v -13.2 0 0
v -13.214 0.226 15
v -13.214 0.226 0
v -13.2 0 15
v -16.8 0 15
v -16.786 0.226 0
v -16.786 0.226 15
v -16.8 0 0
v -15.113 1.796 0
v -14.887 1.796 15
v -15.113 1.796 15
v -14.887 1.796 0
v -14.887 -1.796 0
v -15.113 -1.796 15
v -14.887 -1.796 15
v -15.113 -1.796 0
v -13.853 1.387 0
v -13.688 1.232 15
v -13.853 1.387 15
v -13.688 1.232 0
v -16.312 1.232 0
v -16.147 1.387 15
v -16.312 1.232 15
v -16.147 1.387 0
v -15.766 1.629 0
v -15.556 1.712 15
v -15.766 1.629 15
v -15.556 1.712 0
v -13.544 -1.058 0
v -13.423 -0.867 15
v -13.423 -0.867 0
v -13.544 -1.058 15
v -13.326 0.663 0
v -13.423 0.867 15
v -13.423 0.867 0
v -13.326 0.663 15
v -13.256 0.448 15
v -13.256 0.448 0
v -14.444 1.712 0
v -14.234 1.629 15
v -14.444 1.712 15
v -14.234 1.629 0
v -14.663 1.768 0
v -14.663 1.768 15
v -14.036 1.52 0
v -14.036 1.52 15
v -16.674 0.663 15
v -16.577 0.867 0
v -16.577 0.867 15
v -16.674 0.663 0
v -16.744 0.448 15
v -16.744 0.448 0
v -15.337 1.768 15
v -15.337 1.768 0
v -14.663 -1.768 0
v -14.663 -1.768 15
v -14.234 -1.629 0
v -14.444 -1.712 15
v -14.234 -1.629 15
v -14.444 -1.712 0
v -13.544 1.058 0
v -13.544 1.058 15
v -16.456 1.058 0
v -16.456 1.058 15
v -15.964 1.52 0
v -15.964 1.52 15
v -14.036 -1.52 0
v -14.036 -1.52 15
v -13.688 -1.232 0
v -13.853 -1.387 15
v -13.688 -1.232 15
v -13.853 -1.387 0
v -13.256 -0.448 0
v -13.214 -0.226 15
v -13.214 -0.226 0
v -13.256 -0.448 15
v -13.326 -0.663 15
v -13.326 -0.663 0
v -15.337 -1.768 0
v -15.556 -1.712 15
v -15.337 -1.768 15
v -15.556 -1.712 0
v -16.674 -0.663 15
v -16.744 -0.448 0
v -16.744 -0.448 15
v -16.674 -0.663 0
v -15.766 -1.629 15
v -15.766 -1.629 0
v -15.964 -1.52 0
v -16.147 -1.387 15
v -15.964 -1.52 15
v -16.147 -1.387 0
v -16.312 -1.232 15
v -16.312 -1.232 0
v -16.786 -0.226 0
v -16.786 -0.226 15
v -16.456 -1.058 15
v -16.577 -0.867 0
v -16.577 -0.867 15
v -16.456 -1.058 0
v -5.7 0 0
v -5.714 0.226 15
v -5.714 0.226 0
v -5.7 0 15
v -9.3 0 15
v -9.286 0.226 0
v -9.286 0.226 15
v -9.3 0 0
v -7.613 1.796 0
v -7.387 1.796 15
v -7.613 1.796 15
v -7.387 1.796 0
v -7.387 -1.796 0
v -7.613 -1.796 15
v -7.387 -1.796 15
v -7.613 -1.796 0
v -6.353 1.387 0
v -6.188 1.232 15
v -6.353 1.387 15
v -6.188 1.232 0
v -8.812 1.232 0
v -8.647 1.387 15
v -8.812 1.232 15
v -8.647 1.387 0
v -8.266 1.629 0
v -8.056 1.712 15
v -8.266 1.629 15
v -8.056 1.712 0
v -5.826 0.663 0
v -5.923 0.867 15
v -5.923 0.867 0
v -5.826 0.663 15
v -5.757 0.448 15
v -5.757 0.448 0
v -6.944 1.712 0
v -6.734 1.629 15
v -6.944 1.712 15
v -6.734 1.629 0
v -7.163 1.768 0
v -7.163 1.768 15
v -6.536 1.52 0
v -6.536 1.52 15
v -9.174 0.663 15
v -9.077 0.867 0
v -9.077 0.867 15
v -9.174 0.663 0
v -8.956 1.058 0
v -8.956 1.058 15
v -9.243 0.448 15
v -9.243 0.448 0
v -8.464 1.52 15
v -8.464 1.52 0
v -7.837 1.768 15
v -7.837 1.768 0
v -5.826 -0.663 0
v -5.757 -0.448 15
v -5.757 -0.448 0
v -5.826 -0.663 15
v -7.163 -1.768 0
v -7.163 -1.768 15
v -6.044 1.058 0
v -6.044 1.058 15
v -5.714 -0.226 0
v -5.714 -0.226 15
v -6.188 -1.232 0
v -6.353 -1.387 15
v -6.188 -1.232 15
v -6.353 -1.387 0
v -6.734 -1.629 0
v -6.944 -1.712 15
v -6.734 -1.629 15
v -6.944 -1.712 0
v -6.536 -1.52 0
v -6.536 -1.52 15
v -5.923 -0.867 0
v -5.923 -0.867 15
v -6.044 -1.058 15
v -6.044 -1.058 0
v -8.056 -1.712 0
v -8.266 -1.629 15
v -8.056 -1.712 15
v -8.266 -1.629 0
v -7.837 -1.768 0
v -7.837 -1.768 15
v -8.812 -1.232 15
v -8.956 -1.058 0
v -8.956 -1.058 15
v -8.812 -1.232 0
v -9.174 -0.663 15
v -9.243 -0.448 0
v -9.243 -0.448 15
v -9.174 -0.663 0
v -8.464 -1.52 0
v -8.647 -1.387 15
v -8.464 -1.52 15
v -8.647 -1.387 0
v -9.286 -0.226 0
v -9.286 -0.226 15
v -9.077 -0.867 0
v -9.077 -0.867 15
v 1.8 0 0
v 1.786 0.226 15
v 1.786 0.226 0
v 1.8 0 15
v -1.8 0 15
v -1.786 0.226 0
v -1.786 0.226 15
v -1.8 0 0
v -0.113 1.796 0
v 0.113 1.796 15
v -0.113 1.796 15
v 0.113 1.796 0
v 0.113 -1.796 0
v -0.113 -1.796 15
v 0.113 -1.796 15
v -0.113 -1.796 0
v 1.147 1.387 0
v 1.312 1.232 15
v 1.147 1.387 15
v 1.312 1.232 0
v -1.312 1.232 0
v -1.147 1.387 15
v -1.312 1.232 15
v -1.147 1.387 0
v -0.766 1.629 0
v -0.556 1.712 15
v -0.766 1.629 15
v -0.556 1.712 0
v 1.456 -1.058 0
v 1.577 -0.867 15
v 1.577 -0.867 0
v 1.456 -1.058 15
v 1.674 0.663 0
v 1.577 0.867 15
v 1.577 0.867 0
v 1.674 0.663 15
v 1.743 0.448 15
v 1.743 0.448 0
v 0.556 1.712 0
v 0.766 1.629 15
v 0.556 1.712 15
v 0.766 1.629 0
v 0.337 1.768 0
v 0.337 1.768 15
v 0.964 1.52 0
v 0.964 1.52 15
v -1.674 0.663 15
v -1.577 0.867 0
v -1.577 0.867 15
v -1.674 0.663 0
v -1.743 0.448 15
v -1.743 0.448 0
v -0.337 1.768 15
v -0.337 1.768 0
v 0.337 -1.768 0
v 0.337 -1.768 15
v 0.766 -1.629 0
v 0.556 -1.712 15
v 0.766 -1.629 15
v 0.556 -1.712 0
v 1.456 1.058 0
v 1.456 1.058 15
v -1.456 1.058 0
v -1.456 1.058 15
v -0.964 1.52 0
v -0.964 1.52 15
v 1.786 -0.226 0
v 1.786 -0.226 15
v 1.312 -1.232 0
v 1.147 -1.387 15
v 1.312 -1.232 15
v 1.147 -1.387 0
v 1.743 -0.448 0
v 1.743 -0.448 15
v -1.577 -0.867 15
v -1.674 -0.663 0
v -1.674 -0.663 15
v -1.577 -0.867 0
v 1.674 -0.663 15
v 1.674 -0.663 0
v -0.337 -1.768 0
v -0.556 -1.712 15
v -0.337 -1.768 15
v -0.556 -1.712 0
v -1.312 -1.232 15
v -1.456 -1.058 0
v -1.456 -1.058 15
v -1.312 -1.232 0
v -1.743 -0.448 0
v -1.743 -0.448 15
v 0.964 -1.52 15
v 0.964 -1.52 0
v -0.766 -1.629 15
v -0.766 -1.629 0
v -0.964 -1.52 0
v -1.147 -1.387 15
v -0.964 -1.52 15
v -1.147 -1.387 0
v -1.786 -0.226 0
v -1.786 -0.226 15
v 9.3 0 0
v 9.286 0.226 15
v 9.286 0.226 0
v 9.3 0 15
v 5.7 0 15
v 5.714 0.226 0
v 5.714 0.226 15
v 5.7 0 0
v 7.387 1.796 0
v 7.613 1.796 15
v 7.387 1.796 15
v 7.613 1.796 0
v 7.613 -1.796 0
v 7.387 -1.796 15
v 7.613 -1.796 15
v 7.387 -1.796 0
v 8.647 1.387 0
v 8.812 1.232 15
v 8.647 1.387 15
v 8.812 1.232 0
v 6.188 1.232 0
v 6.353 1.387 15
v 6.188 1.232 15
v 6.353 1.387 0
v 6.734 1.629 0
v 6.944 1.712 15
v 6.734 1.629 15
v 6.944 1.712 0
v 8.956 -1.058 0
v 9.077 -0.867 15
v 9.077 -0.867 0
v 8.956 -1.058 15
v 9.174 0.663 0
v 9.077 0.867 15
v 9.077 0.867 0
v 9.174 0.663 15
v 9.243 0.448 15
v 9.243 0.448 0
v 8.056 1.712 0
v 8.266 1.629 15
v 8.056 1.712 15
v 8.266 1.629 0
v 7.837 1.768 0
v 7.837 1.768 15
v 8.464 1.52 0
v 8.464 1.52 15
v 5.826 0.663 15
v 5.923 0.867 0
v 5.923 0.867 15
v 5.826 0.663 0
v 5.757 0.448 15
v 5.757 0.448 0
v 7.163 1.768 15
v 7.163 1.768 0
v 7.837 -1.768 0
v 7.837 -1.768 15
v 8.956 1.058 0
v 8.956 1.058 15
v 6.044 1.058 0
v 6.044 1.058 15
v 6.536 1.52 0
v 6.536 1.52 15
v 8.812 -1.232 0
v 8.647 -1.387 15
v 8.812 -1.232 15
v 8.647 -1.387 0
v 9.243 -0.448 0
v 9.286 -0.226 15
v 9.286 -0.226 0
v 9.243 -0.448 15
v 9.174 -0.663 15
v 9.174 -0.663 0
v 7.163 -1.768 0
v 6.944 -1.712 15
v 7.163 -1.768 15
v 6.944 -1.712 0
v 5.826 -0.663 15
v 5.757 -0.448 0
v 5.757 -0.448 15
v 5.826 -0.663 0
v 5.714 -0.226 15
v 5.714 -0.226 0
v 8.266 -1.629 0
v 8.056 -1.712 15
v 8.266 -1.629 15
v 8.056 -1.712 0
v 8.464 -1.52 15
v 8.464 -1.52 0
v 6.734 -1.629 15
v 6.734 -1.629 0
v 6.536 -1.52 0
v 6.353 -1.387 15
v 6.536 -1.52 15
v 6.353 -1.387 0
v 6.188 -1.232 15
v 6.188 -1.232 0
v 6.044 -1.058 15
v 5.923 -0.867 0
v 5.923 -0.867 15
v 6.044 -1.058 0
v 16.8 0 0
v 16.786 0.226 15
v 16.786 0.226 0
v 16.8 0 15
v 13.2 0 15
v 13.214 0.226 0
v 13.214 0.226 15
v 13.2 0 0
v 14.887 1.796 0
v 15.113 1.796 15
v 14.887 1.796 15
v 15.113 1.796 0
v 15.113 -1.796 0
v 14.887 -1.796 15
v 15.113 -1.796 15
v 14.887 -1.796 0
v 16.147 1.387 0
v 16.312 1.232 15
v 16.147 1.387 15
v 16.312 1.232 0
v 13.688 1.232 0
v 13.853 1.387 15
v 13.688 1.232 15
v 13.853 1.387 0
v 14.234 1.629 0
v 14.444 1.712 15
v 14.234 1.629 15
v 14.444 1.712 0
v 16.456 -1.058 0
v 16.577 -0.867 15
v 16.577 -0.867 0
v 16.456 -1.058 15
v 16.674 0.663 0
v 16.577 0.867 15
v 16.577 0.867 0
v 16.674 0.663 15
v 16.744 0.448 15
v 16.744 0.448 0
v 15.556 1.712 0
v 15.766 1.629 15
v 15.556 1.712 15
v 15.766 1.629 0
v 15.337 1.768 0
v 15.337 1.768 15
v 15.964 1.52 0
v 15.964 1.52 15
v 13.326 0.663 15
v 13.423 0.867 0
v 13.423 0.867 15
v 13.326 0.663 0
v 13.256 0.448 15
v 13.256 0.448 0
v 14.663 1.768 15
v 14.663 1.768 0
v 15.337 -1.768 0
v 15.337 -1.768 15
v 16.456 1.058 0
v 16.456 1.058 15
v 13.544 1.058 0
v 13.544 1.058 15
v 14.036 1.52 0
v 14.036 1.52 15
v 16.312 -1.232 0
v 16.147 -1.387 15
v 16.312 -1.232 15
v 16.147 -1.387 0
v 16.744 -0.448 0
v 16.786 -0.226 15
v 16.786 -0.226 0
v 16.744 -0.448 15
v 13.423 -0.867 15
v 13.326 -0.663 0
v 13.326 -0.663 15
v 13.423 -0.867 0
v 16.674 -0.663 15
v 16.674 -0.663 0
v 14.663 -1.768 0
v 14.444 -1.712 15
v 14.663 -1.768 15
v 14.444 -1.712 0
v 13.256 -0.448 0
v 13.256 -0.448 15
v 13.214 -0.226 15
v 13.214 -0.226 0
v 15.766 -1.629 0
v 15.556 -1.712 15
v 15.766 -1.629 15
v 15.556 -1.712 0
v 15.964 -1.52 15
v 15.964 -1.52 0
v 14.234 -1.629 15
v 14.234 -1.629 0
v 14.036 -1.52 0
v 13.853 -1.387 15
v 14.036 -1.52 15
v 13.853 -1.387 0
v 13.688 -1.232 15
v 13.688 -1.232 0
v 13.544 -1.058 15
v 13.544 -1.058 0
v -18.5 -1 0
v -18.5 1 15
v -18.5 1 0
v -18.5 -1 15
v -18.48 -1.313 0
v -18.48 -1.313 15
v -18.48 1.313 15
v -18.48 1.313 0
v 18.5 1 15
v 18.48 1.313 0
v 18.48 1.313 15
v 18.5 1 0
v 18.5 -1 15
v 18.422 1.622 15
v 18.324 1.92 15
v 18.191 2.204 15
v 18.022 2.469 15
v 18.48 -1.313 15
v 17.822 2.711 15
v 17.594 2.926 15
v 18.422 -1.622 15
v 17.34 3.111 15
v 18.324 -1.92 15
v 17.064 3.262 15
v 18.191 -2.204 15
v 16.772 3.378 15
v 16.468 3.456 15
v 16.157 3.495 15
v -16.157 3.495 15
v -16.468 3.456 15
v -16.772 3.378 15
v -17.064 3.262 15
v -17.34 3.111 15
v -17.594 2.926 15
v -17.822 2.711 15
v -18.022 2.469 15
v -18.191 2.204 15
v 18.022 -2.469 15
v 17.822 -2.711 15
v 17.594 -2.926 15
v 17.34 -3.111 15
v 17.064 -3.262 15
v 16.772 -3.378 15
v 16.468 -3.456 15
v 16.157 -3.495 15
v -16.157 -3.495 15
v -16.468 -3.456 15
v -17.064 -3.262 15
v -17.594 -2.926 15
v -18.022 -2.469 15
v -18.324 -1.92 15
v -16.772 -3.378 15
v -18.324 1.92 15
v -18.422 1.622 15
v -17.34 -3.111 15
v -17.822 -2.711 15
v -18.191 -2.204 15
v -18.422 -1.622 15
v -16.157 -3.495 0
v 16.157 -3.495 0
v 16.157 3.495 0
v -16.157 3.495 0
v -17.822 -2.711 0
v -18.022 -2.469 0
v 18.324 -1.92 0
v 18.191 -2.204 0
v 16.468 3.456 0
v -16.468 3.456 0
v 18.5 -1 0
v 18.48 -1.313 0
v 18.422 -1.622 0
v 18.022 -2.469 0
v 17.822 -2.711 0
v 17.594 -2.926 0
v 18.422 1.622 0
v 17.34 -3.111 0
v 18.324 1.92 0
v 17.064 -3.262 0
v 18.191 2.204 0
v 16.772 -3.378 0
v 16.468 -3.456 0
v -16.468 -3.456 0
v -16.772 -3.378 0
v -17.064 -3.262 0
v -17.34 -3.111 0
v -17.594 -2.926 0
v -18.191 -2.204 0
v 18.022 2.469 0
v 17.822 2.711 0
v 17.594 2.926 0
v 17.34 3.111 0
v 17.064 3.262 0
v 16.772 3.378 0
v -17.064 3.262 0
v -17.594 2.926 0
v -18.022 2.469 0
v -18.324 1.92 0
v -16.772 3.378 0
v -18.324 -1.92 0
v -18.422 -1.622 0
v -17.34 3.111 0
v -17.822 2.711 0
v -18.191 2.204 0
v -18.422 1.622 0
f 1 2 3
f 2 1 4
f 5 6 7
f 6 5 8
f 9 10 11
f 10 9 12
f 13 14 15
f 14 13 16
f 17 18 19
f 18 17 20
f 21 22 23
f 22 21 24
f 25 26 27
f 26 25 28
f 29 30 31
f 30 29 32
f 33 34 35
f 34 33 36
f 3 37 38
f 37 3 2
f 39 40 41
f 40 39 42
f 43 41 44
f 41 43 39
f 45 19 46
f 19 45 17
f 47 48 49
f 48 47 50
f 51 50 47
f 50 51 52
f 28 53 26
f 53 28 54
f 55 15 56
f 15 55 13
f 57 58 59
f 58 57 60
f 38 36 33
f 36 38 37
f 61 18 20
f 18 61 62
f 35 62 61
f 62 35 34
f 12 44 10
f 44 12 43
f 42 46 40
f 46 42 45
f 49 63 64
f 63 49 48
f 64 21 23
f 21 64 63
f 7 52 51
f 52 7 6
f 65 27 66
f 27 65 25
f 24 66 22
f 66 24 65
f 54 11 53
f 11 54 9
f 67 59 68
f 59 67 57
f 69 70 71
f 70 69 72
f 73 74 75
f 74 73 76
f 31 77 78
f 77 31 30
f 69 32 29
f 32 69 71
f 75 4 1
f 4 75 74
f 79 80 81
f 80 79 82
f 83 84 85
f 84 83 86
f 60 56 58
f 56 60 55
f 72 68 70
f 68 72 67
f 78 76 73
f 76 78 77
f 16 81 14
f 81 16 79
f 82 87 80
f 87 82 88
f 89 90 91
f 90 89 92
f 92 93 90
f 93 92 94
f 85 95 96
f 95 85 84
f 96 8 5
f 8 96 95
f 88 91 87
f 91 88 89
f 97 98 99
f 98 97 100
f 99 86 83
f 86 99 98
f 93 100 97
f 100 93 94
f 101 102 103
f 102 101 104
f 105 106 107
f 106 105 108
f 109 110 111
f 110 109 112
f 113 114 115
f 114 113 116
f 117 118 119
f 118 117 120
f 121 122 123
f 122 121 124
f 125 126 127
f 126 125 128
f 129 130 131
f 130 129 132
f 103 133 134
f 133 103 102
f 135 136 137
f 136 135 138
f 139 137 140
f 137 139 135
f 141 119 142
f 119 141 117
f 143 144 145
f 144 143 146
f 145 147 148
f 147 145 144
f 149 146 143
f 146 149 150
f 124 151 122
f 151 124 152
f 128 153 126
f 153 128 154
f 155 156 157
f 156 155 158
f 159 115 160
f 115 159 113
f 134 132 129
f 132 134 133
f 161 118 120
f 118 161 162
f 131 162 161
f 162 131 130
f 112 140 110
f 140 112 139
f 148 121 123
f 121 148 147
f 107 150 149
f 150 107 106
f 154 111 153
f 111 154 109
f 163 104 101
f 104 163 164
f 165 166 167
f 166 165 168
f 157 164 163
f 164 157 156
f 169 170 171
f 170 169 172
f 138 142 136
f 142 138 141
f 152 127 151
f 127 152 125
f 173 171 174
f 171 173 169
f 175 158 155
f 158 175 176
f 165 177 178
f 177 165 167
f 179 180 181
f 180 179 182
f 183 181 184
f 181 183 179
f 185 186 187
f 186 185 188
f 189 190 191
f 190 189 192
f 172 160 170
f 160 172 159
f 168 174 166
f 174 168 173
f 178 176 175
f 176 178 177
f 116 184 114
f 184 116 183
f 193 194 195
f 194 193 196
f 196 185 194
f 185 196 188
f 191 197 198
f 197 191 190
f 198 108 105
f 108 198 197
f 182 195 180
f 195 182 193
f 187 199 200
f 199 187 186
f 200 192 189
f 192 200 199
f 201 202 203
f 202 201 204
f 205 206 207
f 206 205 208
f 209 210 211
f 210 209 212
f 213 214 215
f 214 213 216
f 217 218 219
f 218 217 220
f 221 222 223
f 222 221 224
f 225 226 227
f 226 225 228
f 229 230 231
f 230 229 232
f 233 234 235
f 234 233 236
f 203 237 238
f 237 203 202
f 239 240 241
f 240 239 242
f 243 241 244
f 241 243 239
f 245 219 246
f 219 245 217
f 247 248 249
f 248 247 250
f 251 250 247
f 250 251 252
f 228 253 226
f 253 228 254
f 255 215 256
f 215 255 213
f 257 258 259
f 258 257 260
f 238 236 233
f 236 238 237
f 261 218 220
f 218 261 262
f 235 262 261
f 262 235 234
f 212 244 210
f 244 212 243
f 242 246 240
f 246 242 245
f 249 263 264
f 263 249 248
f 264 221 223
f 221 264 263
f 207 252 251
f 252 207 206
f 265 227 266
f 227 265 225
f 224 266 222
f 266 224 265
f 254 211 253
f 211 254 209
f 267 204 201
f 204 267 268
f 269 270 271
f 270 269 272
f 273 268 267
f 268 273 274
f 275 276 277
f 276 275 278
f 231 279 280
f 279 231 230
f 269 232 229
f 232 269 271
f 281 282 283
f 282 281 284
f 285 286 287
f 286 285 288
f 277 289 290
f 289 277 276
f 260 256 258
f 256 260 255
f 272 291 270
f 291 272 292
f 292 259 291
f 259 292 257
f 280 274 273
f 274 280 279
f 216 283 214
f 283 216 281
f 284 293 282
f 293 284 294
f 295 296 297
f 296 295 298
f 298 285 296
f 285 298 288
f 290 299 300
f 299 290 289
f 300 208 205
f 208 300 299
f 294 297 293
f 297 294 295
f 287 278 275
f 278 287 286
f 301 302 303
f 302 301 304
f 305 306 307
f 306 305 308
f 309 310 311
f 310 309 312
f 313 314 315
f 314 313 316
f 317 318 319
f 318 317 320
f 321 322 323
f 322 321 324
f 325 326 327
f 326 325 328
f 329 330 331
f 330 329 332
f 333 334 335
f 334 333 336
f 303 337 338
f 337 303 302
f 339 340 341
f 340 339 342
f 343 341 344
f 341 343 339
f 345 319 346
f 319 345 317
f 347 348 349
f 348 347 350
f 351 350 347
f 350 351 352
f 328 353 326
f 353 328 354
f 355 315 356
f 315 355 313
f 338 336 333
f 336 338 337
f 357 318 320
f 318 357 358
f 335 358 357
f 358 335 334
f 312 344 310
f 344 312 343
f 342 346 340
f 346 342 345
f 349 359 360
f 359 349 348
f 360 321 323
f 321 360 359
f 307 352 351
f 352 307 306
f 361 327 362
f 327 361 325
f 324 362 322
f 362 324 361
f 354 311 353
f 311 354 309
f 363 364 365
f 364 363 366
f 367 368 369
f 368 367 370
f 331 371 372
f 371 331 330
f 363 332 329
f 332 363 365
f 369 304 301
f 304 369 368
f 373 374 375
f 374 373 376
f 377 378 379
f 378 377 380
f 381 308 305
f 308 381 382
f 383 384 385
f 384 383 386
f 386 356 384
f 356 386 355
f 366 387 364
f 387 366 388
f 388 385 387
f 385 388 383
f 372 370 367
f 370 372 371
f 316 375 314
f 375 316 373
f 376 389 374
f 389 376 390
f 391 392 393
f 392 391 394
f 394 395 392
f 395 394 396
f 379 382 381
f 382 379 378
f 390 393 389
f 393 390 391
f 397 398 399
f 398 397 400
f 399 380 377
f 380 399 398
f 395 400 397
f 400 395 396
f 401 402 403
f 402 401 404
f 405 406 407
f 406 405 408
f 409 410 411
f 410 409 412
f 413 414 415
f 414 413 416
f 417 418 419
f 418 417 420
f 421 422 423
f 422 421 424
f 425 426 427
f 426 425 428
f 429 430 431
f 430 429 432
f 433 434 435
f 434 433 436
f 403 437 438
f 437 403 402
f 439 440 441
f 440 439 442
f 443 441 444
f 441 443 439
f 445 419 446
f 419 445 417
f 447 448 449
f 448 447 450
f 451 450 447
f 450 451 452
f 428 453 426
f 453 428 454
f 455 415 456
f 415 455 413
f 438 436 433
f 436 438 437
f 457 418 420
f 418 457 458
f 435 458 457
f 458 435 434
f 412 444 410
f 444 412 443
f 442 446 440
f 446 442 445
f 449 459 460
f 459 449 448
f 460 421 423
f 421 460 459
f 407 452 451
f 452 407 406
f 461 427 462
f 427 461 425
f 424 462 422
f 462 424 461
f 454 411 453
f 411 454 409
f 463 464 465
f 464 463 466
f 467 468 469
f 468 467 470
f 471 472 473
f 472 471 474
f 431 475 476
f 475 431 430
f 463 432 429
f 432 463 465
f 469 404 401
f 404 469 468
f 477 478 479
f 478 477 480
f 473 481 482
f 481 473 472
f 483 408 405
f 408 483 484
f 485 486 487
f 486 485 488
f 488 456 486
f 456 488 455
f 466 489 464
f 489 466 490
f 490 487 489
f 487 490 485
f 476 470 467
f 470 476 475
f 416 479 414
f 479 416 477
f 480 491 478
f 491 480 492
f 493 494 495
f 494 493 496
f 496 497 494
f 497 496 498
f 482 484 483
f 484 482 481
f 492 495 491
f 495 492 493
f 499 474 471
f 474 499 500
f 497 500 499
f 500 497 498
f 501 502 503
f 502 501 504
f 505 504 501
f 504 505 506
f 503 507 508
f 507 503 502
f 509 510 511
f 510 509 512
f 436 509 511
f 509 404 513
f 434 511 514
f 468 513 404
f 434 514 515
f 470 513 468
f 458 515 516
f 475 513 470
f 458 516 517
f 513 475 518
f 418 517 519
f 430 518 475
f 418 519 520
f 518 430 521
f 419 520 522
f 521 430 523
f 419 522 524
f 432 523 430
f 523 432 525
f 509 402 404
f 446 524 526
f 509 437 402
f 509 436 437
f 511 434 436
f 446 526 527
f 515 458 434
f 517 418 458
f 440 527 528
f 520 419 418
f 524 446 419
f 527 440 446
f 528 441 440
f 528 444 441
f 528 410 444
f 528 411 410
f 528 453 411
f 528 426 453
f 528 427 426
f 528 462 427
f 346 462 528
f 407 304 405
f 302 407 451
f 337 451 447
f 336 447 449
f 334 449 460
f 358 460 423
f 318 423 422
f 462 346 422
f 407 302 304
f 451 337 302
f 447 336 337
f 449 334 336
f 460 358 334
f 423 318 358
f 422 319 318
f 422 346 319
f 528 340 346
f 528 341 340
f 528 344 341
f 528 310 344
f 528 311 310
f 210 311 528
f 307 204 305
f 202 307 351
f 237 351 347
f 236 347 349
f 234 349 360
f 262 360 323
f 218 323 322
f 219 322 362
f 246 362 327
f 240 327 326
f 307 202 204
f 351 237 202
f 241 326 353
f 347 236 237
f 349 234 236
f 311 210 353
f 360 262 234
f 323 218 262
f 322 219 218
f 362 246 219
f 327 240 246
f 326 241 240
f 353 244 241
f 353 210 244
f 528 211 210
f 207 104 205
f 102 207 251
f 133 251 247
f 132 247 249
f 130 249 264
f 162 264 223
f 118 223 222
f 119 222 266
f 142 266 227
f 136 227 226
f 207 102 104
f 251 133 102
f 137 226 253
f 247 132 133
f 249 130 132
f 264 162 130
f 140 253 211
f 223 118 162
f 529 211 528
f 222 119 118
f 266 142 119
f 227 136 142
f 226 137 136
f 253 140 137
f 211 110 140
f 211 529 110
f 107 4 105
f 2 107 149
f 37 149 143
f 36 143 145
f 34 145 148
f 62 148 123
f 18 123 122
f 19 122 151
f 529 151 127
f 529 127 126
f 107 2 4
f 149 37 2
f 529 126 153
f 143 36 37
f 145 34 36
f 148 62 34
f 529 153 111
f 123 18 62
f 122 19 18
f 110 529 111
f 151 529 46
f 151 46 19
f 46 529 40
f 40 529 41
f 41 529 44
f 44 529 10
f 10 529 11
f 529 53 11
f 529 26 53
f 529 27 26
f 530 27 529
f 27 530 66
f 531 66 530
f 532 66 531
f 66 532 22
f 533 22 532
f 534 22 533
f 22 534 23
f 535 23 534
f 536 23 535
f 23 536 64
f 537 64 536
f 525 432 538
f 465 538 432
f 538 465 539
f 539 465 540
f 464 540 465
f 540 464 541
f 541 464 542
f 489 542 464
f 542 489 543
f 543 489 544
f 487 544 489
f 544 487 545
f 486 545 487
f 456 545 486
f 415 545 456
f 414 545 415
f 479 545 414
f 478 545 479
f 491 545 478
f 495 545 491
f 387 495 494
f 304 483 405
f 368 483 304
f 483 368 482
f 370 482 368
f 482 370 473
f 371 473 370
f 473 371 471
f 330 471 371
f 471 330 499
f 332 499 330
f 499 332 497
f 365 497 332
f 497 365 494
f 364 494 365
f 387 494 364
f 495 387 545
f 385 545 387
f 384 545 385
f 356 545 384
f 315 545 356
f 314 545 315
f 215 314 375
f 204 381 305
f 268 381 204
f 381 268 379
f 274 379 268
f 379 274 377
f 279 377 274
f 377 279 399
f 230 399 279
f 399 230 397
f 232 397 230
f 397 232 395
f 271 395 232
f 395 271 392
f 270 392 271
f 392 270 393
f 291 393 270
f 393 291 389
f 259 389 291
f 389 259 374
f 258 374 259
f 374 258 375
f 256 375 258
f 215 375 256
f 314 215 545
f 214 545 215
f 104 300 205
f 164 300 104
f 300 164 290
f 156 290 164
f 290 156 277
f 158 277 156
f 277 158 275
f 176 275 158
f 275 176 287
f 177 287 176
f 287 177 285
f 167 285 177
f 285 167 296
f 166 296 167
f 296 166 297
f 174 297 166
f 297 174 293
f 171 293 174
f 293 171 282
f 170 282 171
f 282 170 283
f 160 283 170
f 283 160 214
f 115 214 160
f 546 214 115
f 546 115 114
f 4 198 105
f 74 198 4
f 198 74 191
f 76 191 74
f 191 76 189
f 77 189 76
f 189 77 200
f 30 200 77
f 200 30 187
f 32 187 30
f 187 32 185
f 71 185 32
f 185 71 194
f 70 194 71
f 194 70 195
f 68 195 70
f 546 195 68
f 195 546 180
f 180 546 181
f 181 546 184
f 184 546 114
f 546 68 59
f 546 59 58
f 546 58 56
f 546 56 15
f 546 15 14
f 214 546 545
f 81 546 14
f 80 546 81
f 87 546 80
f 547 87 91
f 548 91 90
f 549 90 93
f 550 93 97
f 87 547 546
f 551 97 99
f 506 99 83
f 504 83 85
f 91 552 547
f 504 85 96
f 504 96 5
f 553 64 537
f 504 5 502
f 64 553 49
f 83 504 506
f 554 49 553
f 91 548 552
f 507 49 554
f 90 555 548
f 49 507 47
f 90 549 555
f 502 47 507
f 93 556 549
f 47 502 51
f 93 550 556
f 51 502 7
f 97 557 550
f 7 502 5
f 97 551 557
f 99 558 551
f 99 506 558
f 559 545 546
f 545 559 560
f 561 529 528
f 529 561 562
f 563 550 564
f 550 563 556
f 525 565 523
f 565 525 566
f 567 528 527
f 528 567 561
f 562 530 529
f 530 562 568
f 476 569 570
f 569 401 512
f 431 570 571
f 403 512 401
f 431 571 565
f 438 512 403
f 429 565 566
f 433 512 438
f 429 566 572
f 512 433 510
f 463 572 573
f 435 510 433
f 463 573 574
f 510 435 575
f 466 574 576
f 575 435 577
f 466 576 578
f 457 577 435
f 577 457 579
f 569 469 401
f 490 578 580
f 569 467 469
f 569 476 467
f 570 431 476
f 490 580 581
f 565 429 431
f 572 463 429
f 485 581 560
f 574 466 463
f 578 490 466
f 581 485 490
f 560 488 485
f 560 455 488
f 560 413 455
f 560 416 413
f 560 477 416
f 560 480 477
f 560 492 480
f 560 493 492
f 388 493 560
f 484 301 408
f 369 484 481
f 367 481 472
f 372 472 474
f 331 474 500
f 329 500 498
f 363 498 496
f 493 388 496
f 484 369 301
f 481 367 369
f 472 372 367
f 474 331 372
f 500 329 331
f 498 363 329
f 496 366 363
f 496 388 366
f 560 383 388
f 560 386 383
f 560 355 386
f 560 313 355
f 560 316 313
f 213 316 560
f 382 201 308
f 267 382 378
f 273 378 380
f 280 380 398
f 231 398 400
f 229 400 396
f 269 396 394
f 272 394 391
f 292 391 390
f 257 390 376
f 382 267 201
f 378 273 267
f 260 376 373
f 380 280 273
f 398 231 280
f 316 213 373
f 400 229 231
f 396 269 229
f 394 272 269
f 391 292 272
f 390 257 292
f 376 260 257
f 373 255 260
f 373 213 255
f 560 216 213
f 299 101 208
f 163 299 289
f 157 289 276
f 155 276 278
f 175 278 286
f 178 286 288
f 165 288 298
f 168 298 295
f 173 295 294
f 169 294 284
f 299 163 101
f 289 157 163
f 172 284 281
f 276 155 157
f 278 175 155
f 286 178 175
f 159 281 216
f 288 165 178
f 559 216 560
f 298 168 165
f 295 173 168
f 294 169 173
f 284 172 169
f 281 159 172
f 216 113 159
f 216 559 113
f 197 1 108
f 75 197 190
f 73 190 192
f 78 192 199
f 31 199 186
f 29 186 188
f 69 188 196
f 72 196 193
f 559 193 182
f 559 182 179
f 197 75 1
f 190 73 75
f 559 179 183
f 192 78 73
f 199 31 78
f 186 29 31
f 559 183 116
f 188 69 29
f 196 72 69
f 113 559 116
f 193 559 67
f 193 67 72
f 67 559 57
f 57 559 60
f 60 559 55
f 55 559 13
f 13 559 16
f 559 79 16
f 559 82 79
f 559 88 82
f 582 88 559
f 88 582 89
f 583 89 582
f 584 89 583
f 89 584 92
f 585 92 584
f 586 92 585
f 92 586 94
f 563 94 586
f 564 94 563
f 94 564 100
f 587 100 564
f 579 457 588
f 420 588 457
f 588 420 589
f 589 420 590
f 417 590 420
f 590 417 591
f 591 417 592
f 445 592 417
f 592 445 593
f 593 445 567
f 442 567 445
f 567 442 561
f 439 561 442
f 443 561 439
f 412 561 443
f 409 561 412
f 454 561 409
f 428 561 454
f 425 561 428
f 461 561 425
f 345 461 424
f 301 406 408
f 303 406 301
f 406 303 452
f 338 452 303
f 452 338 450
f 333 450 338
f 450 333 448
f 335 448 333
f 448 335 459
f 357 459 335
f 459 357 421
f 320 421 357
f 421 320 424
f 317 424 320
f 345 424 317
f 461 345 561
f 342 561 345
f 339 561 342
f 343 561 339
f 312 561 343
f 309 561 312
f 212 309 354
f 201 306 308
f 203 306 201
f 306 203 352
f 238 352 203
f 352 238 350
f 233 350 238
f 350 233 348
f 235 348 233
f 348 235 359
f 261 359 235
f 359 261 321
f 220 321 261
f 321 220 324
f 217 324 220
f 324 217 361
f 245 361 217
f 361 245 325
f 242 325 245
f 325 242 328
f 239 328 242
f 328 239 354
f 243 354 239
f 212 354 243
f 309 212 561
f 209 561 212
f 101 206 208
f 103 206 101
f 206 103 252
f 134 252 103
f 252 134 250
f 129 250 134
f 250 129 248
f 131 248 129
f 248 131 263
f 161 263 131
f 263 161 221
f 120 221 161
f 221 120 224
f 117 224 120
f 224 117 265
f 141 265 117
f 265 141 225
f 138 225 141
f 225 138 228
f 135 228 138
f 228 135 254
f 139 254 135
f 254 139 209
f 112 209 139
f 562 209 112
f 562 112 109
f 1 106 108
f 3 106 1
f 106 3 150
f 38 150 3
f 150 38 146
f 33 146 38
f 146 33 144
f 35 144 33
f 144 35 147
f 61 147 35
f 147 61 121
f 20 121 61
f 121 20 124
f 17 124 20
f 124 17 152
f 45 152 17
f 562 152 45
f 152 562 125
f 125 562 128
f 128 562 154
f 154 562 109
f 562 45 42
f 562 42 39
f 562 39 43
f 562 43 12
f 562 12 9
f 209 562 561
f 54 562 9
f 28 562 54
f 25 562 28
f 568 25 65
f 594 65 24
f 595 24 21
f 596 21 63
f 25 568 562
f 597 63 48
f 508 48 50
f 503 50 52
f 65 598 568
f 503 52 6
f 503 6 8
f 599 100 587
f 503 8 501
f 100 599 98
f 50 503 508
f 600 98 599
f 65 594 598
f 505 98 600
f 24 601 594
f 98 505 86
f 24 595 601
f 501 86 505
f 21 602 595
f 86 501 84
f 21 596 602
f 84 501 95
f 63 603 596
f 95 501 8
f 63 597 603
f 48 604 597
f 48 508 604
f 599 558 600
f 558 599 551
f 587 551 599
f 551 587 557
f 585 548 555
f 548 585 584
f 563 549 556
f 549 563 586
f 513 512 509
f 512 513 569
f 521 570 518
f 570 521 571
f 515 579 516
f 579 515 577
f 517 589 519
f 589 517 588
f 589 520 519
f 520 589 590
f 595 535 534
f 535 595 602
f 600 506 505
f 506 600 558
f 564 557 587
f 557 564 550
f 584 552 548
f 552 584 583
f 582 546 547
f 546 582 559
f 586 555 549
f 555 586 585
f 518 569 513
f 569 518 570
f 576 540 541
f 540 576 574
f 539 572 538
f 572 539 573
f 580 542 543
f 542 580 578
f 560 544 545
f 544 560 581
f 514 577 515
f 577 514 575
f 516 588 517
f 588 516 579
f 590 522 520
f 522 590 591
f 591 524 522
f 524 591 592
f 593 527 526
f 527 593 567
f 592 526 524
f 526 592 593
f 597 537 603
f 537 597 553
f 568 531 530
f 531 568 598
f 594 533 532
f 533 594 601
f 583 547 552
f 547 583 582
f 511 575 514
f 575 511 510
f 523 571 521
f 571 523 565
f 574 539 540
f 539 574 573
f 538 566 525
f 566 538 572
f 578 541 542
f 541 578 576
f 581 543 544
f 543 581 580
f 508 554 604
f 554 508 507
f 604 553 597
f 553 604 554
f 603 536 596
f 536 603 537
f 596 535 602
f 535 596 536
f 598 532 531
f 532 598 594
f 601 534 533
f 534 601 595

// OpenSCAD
$fn = 50;


difference() {
	union() {
		translate(v = [0, 0, 0]) {
			rotate(a = [0, 0, 0]) {
				hull() {
					translate(v = [-16.0000000000, 1.0000000000, 0]) {
						rotate(a = [0, 0, 0]) {
							translate(v = [0, 0, 0]) {
								rotate(a = [0, 0, 0]) {
									cylinder(h = 15, r = 2.5000000000);
								}
							}
						}
					}
					translate(v = [16.0000000000, 1.0000000000, 0]) {
						rotate(a = [0, 0, 0]) {
							translate(v = [0, 0, 0]) {
								rotate(a = [0, 0, 0]) {
									cylinder(h = 15, r = 2.5000000000);
								}
							}
						}
					}
					translate(v = [-16.0000000000, -1.0000000000, 0]) {
						rotate(a = [0, 0, 0]) {
							translate(v = [0, 0, 0]) {
								rotate(a = [0, 0, 0]) {
									cylinder(h = 15, r = 2.5000000000);
								}
							}
						}
					}
					translate(v = [16.0000000000, -1.0000000000, 0]) {
						rotate(a = [0, 0, 0]) {
							translate(v = [0, 0, 0]) {
								rotate(a = [0, 0, 0]) {
									cylinder(h = 15, r = 2.5000000000);
								}
							}
						}
					}
				}
			}
		}
	}
	union() {
		translate(v = [-15.0000000000, 0.0000000000, 0]) {
			rotate(a = [0, 0, 0]) {
				translate(v = [0, 0, -50]) {
					rotate(a = [0, 0, 0]) {
						cylinder(h = 100, r = 1.8000000000);
					}
				}
			}
		}
		translate(v = [-7.5000000000, 0.0000000000, 0]) {
			rotate(a = [0, 0, 0]) {
				translate(v = [0, 0, -50]) {
					rotate(a = [0, 0, 0]) {
						cylinder(h = 100, r = 1.8000000000);
					}
				}
			}
		}
		translate(v = [0.0000000000, 0.0000000000, 0]) {
			rotate(a = [0, 0, 0]) {
				translate(v = [0, 0, -50]) {
					rotate(a = [0, 0, 0]) {
						cylinder(h = 100, r = 1.8000000000);
					}
				}
			}
		}
		translate(v = [7.5000000000, 0.0000000000, 0]) {
			rotate(a = [0, 0, 0]) {
				translate(v = [0, 0, -50]) {
					rotate(a = [0, 0, 0]) {
						cylinder(h = 100, r = 1.8000000000);
					}
				}
			}
		}
		translate(v = [15.0000000000, 0.0000000000, 0]) {
			rotate(a = [0, 0, 0]) {
				translate(v = [0, 0, -50]) {
					rotate(a = [0, 0, 0]) {
						cylinder(h = 100, r = 1.8000000000);
					}
				}
			}
		}
	}
}
